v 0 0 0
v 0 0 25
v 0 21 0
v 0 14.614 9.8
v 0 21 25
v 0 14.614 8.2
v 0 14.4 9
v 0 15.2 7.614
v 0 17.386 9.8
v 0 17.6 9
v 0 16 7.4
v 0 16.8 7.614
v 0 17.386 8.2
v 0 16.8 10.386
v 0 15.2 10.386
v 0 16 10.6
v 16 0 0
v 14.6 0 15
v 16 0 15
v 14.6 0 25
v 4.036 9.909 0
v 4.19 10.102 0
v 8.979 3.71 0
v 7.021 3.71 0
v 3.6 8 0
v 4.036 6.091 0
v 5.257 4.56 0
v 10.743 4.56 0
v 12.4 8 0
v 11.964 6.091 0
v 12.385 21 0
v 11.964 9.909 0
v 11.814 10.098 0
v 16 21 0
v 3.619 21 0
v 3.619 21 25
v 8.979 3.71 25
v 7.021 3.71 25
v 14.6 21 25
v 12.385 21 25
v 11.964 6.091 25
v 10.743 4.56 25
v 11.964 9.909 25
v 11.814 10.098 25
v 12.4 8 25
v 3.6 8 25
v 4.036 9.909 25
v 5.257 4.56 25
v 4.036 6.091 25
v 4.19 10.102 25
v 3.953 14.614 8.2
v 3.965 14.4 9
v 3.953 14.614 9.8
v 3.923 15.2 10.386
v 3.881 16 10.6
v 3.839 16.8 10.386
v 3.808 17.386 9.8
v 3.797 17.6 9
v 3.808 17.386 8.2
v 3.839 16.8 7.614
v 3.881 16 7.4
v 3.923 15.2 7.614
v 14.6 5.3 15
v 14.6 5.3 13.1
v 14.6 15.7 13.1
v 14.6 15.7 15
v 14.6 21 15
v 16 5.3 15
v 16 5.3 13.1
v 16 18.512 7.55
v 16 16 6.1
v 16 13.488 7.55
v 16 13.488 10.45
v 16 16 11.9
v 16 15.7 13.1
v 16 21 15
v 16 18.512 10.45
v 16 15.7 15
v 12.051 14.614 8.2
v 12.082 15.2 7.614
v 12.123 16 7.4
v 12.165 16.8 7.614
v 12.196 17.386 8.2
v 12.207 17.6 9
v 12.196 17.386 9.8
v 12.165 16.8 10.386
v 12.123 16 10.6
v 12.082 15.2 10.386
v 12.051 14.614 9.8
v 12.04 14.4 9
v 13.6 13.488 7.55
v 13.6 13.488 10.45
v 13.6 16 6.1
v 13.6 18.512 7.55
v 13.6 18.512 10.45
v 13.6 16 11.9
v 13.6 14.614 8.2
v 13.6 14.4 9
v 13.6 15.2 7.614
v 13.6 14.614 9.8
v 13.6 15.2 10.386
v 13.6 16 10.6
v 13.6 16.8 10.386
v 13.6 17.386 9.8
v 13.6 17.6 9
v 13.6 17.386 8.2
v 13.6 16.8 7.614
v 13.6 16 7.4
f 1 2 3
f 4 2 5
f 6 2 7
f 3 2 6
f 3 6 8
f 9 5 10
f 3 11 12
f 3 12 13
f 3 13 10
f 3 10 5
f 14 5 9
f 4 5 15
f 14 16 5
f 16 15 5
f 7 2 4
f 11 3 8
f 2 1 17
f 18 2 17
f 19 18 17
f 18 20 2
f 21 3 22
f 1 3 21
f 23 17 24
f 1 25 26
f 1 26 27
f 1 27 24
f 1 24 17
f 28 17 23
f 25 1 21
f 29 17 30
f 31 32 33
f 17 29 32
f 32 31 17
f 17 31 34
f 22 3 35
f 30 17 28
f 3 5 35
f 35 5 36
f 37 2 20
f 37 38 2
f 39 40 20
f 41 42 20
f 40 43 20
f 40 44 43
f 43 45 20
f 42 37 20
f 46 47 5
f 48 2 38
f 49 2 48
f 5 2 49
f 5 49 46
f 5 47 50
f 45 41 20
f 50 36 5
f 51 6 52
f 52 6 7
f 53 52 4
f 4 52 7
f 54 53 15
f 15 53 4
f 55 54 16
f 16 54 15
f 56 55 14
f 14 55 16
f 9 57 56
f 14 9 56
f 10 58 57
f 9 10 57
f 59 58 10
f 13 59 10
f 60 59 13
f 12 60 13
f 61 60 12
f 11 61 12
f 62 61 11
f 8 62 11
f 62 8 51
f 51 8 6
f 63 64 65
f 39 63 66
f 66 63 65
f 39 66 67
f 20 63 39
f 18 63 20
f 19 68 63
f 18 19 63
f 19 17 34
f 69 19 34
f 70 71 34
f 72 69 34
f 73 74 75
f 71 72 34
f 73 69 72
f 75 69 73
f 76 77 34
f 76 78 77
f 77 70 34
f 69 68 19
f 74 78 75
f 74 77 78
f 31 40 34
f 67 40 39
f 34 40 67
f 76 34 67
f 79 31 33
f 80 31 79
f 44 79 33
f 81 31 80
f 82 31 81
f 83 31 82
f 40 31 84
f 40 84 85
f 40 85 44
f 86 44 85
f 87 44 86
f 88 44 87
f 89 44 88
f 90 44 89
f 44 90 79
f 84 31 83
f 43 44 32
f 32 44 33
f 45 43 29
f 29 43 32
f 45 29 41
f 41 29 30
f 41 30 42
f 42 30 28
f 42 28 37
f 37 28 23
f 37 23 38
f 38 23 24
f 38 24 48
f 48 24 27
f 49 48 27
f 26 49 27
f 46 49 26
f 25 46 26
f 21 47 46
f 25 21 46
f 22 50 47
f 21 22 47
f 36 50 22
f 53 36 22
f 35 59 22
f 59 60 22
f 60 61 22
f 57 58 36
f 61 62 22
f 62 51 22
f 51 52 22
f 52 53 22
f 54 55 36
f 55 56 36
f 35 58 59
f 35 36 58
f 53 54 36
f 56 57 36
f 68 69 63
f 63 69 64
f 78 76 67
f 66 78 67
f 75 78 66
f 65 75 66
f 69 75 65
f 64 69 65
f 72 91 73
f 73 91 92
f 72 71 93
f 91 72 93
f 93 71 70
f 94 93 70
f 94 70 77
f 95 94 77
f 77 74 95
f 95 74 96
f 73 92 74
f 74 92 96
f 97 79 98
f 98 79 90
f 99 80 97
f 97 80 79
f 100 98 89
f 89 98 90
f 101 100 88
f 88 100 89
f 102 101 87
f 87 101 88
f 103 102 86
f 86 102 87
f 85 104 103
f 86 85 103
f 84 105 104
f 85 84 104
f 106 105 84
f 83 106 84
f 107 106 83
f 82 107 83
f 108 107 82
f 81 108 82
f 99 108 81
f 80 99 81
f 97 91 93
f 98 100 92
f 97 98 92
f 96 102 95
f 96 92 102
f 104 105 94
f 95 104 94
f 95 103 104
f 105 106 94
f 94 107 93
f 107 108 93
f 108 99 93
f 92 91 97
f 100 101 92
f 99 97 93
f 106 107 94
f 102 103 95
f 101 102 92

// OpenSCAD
difference(){
	cube(size=[16,21,25], center = false);
	union() {
		translate([14.6,-0.1,15])cube(size = [1.5,22,11]);
		translate([14.6,5.3,13.1])cube(size = [1.5,10.4,2]);

		translate([16/2-3.3,10,-0.1])cube(size = [6.6,25,26]);
		translate([16/2,8,-0.1])cylinder(h = 30, r=4.4);

		translate([4.3,8,-0.1])rotate([0,0,3])cube(size = [3,15,26]);
		translate([8.7,8,-0.1])rotate([0,0,-3])cube(size = [3,15,26]);

		translate([-0.1,21-5,9])rotate([0,90,0])cylinder(h = 16, r=1.6, $fn=12);
		translate([16-2.4,21-5,9])rotate([0,90,0])cylinder(h = 2.5, r=2.9, $fn=6);	
	}
}
